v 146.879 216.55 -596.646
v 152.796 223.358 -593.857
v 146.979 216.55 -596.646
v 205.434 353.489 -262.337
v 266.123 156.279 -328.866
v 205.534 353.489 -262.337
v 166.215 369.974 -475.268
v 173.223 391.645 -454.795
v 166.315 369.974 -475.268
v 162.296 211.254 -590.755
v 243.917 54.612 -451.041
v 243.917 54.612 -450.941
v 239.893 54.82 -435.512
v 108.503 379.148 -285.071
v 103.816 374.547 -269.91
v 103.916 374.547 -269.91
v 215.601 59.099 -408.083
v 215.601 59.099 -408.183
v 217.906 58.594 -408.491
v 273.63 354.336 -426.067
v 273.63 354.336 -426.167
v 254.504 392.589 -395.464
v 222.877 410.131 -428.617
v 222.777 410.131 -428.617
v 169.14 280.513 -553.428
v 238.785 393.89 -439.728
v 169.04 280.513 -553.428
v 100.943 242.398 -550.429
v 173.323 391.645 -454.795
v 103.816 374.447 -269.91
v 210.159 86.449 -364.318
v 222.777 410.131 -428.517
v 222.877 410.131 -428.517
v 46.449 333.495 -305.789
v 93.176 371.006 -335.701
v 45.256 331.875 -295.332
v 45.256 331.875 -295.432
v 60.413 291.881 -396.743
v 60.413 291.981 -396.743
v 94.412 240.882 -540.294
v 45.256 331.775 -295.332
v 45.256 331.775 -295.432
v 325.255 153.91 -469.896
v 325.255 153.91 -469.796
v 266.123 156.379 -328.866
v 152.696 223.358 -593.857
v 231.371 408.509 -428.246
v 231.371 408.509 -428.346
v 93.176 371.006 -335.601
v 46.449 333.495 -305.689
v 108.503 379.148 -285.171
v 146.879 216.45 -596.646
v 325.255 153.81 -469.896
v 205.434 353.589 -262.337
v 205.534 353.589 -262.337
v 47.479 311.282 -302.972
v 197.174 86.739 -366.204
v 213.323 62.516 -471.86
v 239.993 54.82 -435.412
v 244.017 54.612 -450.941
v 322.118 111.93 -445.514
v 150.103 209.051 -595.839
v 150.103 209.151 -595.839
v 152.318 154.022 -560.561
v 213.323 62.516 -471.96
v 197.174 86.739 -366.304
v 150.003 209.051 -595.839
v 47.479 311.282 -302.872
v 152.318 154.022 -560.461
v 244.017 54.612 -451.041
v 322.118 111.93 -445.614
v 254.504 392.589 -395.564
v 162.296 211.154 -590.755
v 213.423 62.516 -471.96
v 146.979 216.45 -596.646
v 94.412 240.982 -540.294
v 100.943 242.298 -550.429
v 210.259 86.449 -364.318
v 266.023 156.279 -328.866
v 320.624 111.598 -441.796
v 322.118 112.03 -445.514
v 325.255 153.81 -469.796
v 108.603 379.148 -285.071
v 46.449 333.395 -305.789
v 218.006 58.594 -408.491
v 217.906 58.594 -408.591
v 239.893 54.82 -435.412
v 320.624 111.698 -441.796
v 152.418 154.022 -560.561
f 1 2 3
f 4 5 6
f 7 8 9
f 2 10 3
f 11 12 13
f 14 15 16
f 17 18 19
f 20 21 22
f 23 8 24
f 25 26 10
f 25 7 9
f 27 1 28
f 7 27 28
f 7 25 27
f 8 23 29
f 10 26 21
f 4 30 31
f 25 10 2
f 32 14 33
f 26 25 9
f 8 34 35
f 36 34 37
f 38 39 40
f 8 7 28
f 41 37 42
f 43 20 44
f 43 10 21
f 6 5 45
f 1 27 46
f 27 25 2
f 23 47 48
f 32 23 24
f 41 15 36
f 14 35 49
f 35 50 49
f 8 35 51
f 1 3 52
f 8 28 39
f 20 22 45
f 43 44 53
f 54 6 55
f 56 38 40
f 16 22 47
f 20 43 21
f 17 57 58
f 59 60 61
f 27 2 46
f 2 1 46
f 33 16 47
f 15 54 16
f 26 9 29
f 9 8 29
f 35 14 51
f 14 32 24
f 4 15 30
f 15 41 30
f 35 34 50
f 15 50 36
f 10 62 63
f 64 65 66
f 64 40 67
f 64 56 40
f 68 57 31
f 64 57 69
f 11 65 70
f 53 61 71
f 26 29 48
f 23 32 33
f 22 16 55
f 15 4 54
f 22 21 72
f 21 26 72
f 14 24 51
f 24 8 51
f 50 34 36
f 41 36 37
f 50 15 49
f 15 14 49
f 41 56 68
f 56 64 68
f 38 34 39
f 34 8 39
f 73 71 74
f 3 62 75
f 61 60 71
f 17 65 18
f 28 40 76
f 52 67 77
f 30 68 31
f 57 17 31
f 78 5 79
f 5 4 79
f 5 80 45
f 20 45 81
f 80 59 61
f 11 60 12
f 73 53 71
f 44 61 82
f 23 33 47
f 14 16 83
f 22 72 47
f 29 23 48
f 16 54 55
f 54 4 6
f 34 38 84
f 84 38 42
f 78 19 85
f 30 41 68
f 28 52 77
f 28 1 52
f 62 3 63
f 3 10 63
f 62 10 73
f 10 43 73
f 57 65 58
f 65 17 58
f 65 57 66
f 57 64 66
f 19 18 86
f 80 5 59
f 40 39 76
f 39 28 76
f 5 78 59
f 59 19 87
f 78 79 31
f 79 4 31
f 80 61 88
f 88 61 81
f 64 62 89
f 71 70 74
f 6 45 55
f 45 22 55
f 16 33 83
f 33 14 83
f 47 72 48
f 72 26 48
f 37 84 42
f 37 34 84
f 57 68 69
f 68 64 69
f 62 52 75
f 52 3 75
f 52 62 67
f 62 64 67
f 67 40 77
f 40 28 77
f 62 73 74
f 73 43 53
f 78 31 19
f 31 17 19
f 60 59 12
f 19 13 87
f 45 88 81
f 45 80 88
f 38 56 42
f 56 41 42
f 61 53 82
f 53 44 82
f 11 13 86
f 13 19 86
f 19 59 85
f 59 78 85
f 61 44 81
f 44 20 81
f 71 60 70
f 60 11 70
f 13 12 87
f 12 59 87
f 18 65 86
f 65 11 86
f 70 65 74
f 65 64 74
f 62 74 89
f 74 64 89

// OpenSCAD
hull(){ translate([173.22317659,391.545348668,-454.795457854])cube(0.1,0.1,0.1);
translate([222.776576726,410.030973267,-428.617428179])cube(0.1,0.1,0.1);
translate([231.271228232,408.408845739,-428.345970103])cube(0.1,0.1,0.1);
translate([238.685168335,393.789808917,-439.727934486])cube(0.1,0.1,0.1);
translate([205.433995073,353.48934937,-262.437327923])cube(0.1,0.1,0.1);
translate([325.155113552,153.809559151,-469.896096185])cube(0.1,0.1,0.1);
translate([254.403600603,392.489095091,-395.564279483])cube(0.1,0.1,0.1);
translate([273.530092593,354.236111111,-426.166666667])cube(0.1,0.1,0.1);
translate([266.022850925,156.278563656,-328.966267682])cube(0.1,0.1,0.1);
translate([210.159165752,86.4489571899,-364.418221734])cube(0.1,0.1,0.1);
translate([93.1760254879,370.90601354,-335.70091597])cube(0.1,0.1,0.1);
translate([108.502538071,379.04822335,-285.171319797])cube(0.1,0.1,0.1);
translate([103.815617411,374.447039044,-270.010274612])cube(0.1,0.1,0.1);
translate([320.523535062,111.597822606,-441.895613192])cube(0.1,0.1,0.1);
translate([322.01754386,111.929824561,-445.614035088])cube(0.1,0.1,0.1);
translate([162.195715677,211.153846154,-590.754625122])cube(0.1,0.1,0.1);
translate([150.002816901,209.050704225,-595.83943662])cube(0.1,0.1,0.1);
translate([94.4117647059,240.882352941,-540.294117647])cube(0.1,0.1,0.1);
translate([197.173913043,86.7391304348,-366.304347826])cube(0.1,0.1,0.1);
translate([152.318361955,154.022457067,-560.561426684])cube(0.1,0.1,0.1);
translate([146.879120117,216.450281035,-596.645964888])cube(0.1,0.1,0.1);
translate([166.214511041,369.873817035,-475.268138801])cube(0.1,0.1,0.1);
translate([100.943177426,242.298028605,-550.429068419])cube(0.1,0.1,0.1);
translate([169.039580908,280.413271246,-553.428405122])cube(0.1,0.1,0.1);
translate([152.6959573,223.258376989,-593.857368785])cube(0.1,0.1,0.1);
translate([243.916673324,54.6117280499,-451.041383718])cube(0.1,0.1,0.1);
translate([213.322869955,62.5156950673,-471.959641256])cube(0.1,0.1,0.1);
translate([239.892835273,54.8203715044,-435.512349459])cube(0.1,0.1,0.1);
translate([217.905891762,58.5937083444,-408.591042389])cube(0.1,0.1,0.1);
translate([215.600600601,59.0990990991,-408.183183183])cube(0.1,0.1,0.1);
translate([46.448952296,333.395006687,-305.789121712])cube(0.1,0.1,0.1);
translate([60.4128440367,291.880733945,-396.743119266])cube(0.1,0.1,0.1);
translate([45.2555066079,331.775330396,-295.431718062])cube(0.1,0.1,0.1);
translate([47.4788732394,311.281690141,-302.971830986])cube(0.1,0.1,0.1); }
